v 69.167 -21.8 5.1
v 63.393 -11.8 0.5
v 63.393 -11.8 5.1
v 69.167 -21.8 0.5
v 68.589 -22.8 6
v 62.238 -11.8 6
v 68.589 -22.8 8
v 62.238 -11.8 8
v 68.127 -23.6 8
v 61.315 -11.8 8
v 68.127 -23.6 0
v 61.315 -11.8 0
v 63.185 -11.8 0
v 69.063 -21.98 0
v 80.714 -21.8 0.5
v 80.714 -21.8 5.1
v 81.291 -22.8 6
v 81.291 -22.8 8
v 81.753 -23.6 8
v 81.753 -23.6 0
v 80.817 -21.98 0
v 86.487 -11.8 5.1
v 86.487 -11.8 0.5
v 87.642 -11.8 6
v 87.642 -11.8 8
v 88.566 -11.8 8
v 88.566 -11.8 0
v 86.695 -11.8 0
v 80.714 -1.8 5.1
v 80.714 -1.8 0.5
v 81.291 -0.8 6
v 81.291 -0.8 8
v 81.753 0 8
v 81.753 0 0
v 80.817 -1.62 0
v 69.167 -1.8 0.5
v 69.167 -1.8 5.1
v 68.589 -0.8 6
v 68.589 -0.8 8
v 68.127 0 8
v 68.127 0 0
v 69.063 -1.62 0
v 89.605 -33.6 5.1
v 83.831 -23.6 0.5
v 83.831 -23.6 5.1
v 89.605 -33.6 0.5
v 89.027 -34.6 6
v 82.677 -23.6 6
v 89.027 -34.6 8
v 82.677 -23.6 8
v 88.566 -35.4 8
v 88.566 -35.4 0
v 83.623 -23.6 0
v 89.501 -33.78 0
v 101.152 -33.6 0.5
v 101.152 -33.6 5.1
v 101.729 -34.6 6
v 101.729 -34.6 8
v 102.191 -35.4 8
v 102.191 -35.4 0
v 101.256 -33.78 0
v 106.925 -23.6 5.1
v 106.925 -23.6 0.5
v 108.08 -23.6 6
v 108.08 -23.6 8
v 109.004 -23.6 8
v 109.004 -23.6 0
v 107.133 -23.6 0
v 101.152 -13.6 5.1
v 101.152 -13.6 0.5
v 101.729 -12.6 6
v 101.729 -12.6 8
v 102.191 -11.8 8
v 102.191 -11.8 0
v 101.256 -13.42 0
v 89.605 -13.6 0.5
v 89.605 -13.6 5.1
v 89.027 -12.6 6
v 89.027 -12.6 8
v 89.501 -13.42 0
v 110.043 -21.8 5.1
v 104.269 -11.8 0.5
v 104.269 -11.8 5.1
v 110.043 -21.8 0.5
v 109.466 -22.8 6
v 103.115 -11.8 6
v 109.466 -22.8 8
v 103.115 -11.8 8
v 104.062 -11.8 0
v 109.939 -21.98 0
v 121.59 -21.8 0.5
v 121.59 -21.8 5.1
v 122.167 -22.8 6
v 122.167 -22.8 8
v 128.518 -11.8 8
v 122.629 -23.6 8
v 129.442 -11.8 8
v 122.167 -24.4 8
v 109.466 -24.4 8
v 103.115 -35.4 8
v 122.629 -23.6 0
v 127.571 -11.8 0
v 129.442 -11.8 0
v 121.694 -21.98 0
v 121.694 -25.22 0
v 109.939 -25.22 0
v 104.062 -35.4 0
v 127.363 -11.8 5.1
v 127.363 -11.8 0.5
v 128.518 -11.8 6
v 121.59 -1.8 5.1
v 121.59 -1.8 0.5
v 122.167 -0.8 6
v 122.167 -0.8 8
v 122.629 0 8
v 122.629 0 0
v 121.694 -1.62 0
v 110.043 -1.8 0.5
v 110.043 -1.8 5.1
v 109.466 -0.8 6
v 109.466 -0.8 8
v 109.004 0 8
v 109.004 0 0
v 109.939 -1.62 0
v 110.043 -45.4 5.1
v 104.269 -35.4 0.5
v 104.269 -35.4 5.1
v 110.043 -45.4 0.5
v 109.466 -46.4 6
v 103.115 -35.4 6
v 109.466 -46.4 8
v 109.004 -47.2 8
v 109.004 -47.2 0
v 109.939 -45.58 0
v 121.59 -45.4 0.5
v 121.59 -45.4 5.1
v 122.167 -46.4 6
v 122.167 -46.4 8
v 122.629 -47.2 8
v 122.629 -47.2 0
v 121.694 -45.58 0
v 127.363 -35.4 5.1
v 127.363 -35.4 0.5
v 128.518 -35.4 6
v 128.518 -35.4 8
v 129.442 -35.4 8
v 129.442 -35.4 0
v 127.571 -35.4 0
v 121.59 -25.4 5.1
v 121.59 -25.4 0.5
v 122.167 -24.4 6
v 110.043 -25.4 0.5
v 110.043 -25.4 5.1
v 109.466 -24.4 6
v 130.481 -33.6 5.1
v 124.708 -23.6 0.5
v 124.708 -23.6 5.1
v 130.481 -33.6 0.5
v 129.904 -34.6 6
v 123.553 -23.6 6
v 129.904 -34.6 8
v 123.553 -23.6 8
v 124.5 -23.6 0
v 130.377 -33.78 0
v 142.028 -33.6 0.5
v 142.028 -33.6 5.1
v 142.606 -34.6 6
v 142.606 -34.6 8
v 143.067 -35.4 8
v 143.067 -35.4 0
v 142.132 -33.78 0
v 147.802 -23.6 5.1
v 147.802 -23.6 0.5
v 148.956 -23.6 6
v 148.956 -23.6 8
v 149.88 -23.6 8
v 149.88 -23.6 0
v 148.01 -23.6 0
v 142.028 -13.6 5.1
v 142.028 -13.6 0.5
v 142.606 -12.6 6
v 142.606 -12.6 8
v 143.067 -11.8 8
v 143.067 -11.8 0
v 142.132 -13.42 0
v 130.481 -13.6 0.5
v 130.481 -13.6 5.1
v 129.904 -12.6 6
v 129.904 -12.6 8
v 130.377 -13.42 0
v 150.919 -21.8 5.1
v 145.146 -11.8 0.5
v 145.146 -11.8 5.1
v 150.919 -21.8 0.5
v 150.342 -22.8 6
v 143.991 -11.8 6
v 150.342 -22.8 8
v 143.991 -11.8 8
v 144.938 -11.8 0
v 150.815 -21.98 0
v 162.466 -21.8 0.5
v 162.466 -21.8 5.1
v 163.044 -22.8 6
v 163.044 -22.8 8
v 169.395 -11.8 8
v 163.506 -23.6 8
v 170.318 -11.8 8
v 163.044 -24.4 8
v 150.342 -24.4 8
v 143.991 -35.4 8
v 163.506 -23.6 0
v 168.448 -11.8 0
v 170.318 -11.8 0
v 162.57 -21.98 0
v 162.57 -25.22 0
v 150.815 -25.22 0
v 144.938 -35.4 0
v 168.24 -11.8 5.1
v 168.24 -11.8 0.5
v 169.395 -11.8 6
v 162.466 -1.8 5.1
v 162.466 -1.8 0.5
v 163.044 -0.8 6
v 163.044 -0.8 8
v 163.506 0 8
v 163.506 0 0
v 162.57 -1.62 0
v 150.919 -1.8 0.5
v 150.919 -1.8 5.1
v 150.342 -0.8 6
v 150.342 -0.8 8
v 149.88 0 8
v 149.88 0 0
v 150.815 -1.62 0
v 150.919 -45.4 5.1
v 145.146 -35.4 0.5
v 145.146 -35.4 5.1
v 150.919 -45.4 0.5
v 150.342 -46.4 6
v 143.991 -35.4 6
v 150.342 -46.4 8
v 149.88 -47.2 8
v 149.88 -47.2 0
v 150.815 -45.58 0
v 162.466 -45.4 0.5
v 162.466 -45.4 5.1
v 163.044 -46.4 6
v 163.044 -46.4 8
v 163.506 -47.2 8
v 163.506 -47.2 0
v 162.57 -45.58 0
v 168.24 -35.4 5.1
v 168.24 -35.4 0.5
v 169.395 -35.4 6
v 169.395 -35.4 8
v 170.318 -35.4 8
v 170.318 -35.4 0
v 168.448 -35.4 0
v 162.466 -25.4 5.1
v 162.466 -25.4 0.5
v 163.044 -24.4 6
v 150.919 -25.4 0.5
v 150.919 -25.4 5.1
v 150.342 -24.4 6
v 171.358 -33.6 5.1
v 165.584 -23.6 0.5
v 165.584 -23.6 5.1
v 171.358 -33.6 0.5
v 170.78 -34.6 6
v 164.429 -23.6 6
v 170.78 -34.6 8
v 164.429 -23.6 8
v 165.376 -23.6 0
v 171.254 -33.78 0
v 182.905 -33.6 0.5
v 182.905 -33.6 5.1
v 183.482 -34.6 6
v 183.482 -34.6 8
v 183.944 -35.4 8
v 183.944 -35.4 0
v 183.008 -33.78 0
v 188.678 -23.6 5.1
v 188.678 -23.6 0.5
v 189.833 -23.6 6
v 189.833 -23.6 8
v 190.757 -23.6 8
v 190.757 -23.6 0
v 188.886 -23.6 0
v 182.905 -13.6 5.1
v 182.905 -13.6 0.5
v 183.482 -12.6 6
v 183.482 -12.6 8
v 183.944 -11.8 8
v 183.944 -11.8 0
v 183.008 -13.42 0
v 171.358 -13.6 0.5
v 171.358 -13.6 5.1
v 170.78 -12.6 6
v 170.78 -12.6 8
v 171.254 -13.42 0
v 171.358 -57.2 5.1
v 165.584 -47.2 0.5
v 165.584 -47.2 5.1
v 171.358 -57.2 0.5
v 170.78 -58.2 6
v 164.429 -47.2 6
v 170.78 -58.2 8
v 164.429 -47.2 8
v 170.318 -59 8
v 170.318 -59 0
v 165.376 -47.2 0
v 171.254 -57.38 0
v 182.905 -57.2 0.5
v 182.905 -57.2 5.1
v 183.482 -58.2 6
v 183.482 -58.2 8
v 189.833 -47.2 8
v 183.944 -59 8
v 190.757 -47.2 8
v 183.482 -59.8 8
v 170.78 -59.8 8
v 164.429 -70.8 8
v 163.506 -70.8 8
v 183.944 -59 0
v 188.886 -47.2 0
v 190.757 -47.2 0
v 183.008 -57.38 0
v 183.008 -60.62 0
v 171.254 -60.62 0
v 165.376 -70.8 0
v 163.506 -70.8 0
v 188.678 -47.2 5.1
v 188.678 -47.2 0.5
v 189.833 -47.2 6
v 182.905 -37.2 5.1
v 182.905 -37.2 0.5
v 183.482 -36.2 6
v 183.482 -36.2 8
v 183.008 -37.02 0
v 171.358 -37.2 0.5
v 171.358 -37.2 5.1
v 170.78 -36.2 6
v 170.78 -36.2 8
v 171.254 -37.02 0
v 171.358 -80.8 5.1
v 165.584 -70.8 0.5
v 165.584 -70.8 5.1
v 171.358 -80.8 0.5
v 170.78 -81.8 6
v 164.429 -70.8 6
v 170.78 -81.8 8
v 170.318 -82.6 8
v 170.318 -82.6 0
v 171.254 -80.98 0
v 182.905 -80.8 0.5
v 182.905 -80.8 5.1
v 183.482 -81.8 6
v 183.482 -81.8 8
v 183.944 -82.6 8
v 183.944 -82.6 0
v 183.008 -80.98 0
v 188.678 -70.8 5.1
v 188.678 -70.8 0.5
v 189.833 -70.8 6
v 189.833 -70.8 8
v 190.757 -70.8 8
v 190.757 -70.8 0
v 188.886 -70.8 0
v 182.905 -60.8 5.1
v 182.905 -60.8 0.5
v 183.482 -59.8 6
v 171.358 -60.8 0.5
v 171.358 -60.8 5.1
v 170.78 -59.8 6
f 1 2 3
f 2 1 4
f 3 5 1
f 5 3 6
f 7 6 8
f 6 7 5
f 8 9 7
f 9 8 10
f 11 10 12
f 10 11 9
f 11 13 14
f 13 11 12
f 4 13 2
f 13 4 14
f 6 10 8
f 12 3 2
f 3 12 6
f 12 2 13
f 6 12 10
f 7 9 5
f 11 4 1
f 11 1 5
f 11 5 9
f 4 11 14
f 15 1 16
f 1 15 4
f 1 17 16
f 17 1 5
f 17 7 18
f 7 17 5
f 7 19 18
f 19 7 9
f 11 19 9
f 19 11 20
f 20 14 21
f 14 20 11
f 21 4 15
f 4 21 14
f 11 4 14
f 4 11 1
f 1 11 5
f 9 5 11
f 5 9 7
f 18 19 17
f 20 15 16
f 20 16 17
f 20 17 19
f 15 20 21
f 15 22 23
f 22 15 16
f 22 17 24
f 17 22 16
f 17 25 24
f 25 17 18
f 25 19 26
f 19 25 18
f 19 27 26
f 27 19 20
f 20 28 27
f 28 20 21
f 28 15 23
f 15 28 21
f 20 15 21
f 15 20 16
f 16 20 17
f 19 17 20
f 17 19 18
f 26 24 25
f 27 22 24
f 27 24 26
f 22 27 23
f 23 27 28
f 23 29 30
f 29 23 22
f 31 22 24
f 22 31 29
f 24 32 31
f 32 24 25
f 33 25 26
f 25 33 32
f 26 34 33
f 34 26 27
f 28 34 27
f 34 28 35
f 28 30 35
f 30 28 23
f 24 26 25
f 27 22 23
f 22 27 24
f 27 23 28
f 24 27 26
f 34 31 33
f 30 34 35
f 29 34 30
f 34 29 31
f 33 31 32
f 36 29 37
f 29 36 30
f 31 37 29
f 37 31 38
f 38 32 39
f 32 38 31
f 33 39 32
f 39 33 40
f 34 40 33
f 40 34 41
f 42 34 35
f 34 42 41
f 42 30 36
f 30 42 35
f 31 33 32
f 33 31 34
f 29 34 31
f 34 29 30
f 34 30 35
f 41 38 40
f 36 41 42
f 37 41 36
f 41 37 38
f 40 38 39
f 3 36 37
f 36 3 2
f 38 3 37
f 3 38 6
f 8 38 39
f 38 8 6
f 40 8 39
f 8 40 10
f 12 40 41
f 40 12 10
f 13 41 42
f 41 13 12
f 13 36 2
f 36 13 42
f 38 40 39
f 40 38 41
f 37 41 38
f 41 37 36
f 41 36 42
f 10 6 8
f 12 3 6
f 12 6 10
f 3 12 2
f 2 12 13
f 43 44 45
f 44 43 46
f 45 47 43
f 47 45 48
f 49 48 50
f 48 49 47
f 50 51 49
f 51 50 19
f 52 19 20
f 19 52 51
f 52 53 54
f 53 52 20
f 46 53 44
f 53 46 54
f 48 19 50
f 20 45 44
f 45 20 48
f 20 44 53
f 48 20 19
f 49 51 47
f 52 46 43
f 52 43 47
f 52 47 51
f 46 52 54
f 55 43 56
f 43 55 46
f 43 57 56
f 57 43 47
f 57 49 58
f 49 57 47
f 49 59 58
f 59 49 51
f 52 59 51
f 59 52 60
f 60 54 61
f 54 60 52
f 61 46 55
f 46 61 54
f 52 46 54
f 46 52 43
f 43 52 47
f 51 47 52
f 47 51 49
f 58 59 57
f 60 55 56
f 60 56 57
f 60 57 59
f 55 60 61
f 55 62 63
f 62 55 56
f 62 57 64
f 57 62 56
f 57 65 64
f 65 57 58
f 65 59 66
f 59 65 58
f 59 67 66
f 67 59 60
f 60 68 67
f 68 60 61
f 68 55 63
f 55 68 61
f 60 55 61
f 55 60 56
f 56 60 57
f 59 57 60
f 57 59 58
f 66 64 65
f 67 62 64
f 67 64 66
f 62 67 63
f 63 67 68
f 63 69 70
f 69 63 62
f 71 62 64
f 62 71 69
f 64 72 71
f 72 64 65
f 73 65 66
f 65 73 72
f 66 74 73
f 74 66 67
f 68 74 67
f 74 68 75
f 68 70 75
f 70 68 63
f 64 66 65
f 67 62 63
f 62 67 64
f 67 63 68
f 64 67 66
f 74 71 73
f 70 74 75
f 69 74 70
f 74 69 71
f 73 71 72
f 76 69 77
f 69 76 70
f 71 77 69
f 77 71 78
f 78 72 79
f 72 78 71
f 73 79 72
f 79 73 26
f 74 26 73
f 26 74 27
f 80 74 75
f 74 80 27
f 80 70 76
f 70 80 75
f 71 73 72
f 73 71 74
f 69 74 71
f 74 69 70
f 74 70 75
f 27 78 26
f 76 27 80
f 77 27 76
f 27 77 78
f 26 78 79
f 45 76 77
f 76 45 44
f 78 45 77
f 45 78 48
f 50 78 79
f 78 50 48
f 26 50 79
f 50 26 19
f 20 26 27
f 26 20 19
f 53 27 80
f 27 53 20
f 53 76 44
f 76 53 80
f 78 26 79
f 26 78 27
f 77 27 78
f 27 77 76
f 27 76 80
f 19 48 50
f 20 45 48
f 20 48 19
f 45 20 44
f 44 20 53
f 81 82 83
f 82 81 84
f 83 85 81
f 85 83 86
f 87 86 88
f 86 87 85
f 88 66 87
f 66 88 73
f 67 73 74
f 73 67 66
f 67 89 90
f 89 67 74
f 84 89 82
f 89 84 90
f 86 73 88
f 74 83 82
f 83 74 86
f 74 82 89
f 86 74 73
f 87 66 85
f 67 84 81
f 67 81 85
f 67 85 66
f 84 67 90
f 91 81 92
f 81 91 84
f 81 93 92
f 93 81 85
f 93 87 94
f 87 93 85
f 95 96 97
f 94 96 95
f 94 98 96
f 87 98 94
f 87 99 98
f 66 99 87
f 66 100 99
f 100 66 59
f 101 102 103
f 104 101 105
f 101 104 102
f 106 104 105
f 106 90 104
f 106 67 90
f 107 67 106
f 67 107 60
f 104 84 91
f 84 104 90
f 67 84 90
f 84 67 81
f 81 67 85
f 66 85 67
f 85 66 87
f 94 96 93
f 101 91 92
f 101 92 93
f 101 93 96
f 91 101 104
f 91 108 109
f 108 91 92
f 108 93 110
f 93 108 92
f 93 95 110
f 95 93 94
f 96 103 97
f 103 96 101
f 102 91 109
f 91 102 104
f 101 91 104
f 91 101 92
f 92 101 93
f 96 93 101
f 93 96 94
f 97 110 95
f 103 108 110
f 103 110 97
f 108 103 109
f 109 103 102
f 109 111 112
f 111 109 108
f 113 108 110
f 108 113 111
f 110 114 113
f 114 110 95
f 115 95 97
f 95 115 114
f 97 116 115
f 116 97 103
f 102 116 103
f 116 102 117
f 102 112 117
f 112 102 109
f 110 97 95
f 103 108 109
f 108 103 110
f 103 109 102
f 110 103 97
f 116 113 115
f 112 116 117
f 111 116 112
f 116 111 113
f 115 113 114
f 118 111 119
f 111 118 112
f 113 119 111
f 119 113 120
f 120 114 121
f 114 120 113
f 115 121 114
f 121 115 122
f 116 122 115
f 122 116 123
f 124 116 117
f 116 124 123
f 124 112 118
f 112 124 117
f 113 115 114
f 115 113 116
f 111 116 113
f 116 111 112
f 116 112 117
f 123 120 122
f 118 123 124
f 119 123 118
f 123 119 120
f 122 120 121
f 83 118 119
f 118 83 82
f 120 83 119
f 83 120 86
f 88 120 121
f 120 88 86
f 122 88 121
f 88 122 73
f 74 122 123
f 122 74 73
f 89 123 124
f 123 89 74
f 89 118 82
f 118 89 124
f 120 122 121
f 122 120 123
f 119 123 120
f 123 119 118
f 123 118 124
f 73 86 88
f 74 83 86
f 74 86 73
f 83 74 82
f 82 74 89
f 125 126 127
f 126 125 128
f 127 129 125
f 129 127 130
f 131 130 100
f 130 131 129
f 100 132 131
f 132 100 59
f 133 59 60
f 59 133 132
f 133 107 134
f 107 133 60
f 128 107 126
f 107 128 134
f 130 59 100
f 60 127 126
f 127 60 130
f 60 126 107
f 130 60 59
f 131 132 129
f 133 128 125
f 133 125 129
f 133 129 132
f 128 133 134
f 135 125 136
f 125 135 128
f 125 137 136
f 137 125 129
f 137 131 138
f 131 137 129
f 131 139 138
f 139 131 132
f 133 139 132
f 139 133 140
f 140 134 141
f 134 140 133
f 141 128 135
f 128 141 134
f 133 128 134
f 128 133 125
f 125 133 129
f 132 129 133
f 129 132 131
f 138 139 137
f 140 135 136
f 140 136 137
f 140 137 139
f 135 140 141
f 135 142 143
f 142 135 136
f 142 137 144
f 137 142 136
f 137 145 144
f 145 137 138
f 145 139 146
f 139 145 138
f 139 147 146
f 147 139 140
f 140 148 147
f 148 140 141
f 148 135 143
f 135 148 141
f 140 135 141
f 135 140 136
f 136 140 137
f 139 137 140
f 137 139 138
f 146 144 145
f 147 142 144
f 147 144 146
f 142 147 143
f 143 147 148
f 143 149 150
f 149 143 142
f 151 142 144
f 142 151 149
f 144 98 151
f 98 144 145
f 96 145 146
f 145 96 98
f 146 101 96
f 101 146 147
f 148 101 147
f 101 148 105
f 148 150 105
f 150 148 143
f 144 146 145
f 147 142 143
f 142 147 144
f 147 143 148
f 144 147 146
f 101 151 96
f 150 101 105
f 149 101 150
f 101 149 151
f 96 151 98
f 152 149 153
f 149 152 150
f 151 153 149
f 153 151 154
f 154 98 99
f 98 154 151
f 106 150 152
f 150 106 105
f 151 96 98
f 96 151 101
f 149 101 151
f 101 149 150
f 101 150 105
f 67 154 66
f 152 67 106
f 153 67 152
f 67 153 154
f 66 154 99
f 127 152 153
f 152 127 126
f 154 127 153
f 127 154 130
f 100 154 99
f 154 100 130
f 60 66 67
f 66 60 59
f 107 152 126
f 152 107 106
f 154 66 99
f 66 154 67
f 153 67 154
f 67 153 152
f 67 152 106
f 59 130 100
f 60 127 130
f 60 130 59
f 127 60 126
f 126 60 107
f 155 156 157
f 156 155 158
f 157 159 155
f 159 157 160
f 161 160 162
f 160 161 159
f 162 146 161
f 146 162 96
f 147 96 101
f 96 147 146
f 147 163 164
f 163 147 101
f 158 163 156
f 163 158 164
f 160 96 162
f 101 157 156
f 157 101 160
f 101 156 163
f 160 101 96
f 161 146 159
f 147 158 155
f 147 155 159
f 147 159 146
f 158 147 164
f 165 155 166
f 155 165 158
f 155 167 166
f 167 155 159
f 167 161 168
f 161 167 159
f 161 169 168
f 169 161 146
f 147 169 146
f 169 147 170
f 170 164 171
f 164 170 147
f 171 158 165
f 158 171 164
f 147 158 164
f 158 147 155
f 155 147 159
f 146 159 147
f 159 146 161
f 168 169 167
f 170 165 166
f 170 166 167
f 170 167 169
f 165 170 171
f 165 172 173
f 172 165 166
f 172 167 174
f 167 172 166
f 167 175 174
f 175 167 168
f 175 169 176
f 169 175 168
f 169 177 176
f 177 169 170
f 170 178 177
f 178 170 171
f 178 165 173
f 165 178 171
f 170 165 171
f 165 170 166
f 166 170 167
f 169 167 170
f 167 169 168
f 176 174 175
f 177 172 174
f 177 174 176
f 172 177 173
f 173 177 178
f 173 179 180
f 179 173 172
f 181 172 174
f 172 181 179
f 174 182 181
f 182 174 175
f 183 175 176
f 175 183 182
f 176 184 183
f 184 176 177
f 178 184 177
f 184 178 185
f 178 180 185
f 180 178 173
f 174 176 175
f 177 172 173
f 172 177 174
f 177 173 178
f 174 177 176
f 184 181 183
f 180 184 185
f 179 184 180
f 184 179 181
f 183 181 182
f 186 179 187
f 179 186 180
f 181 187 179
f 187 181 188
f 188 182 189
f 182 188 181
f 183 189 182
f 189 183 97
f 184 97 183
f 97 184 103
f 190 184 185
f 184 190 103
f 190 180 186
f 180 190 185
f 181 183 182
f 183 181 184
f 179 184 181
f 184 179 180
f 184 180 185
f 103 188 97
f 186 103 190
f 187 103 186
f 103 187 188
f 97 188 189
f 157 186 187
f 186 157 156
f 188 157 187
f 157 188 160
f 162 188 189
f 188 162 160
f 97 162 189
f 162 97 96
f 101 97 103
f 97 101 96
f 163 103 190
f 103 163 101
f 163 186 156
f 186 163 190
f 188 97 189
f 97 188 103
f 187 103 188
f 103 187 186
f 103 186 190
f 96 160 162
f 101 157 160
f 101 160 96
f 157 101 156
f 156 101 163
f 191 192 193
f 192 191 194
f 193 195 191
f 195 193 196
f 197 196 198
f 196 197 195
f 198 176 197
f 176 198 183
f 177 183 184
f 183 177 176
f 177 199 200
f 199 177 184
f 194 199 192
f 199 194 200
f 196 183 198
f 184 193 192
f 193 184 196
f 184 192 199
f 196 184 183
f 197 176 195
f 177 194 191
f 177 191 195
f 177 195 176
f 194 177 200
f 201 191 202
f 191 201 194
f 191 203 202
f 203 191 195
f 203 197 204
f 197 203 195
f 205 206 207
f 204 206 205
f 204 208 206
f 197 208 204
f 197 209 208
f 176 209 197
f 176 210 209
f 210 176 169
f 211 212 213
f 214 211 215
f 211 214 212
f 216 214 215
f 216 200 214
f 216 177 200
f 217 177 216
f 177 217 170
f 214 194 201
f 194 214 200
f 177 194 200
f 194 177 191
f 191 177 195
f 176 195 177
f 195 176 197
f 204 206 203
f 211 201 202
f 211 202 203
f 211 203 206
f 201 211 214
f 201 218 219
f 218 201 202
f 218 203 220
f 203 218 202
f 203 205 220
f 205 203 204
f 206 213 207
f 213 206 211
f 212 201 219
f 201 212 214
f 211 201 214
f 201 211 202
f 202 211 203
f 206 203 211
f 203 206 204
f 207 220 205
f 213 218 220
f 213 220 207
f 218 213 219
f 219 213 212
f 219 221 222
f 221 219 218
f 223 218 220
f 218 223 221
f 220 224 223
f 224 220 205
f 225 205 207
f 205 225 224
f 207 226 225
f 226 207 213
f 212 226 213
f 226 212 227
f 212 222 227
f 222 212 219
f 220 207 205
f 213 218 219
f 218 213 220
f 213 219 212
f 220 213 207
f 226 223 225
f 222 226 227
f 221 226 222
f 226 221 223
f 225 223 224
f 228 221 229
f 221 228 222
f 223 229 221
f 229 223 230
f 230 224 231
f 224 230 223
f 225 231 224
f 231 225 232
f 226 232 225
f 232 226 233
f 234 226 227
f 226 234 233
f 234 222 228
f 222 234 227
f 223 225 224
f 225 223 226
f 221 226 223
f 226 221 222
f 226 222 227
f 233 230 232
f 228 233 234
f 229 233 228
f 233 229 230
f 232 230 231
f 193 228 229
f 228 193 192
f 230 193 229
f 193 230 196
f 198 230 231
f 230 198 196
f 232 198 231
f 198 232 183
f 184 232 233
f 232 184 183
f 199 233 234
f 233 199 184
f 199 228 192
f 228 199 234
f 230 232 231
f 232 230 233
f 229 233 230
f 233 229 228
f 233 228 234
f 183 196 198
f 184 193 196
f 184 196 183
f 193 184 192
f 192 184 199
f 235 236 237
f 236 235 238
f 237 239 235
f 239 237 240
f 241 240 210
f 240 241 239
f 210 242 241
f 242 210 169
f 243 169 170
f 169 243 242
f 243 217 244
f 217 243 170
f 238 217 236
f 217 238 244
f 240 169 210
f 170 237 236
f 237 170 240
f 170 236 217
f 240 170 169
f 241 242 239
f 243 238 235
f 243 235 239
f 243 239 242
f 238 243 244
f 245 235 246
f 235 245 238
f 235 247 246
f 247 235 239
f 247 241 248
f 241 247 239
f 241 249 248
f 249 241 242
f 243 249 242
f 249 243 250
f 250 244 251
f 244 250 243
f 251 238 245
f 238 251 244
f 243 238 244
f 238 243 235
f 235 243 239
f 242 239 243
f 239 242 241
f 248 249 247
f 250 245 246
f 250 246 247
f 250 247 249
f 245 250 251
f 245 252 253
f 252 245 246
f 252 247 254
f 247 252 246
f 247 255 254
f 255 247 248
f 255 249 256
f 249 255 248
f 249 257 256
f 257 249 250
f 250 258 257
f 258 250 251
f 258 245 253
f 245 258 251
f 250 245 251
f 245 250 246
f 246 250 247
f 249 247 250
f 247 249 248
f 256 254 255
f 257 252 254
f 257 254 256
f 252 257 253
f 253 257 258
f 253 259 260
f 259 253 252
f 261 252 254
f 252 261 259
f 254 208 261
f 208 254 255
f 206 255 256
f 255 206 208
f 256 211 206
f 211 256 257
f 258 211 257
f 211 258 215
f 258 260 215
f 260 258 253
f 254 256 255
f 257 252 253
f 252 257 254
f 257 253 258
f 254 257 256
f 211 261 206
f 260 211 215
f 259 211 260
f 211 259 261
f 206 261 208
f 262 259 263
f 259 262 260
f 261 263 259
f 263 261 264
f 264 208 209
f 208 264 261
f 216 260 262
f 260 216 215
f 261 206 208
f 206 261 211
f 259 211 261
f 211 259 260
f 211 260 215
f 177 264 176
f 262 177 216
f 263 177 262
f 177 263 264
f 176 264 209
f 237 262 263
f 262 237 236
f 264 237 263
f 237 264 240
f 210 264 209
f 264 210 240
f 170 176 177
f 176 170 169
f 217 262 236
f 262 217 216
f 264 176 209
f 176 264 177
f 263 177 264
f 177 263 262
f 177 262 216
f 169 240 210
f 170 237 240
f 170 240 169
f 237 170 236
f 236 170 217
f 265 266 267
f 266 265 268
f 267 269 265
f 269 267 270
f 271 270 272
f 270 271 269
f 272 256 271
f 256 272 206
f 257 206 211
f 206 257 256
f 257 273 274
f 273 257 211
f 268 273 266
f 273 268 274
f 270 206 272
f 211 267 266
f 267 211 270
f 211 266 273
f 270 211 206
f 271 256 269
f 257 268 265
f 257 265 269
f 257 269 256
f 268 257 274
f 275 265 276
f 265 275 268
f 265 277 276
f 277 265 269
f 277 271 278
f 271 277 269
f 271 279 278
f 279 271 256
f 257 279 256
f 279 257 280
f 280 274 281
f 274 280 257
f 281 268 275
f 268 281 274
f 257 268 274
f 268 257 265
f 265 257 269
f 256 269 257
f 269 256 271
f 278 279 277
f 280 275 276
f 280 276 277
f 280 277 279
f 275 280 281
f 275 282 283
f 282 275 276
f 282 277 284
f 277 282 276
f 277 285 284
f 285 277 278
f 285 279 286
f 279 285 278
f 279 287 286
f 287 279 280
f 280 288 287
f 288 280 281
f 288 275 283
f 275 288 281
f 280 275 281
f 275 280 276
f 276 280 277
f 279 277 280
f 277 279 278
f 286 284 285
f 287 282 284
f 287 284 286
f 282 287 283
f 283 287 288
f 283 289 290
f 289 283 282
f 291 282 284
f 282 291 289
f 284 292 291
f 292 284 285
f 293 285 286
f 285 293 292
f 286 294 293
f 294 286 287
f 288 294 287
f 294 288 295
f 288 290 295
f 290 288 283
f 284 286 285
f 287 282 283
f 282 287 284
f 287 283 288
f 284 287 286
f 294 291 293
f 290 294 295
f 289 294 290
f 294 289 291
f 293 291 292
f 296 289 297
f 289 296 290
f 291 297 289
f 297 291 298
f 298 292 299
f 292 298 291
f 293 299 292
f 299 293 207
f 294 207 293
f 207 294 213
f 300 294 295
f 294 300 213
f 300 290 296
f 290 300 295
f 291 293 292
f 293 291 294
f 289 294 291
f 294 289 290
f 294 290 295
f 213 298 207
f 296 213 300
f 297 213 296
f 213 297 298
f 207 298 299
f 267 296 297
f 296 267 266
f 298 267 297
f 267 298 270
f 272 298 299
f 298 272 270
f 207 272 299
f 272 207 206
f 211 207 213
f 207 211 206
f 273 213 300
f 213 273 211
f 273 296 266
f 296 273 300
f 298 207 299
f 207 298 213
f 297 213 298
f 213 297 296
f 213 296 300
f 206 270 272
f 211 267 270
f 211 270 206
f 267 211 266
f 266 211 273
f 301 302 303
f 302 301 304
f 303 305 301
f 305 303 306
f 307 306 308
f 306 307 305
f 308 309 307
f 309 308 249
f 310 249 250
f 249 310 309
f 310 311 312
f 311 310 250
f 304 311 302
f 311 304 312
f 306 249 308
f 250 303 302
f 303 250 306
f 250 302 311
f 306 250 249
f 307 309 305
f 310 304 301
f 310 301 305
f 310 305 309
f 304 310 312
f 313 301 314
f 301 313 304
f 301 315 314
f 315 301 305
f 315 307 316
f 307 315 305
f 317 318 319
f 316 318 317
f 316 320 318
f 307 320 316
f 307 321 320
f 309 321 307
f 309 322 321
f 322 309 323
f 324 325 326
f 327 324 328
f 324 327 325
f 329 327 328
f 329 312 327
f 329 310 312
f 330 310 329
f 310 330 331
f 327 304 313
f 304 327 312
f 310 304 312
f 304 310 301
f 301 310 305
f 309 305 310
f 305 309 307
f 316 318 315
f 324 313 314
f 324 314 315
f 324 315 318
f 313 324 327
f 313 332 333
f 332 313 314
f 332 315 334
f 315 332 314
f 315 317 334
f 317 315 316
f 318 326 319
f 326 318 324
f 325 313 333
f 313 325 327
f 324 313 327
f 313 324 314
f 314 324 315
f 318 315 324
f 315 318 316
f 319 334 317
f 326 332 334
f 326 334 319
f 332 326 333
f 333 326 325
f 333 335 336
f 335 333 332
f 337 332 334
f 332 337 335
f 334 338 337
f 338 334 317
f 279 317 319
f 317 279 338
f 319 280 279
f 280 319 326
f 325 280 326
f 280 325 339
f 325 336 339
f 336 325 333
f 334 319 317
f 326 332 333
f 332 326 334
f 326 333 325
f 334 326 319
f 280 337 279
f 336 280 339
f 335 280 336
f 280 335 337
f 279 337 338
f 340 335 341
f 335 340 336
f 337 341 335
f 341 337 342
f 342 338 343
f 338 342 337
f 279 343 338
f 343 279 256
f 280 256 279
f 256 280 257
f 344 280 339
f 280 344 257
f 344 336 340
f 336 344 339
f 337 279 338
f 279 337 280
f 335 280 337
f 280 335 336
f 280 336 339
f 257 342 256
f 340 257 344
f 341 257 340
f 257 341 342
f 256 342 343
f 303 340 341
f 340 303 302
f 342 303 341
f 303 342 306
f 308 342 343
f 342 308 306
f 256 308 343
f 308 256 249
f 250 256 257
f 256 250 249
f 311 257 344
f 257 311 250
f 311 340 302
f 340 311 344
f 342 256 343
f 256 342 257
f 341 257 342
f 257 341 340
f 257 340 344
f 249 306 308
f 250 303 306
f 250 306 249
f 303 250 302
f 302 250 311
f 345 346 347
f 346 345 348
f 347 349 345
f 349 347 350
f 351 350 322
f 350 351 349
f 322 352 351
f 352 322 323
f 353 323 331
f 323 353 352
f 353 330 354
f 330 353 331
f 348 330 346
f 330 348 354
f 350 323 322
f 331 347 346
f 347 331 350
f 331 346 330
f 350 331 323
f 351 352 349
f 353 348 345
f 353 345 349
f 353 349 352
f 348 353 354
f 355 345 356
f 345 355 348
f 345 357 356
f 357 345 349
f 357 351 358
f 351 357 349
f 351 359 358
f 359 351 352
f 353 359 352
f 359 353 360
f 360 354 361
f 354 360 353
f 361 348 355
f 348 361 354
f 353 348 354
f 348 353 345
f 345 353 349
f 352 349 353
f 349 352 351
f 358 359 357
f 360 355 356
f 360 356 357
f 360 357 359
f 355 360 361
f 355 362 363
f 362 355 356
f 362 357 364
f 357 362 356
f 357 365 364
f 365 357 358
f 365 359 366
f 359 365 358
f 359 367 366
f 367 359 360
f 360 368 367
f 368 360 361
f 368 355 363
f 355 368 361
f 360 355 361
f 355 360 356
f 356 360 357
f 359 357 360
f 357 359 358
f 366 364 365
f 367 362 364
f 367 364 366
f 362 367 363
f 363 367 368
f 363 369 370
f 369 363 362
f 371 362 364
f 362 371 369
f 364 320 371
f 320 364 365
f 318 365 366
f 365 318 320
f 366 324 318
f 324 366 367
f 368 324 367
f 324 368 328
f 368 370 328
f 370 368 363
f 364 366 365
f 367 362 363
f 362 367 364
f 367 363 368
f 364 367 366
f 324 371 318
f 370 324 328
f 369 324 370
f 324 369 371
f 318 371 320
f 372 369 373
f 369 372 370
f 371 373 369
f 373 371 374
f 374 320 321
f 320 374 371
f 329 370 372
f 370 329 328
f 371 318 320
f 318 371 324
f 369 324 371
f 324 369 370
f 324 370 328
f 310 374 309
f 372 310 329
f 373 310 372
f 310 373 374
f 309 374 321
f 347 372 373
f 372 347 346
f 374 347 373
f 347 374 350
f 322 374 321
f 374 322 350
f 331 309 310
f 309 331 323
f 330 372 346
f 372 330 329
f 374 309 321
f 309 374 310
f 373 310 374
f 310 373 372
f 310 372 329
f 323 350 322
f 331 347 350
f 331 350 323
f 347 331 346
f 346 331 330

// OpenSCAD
/*[ Hex unit size ]*/

//Depth of the grid
depth = 8;
//Width of the hexagon's hole (flat side to flat side)
hole_width = 20;
//Thickness of the wall forming each hexagon
wall_thickness = 1.8;

/*[ Grid size settings ]*/
max_grid_width=100;
max_grid_height=100;

/*[ Grid shape ]*/
//If checked, ignores custom column sizes and fills grid to maximum size.
fill=false;
flip_staggering=true;
//Amount of hexagons per column. Each entry defines a one column, where the number specifies the amount of hex units that will be generated for the respective column. (Ignored if "fill" is checked)
columns=[ 9, 10, 9, 10, 9, 10, 9, 10, 9,];
//columns=[ 9, 10, 9, 10, 9, 10, 9, 10, 9, 10];
//columns=[10, 9, 10, 9, 10, 9, 10, 9, 10];
include_offsets=false;
//Optional: Offset for each column. This will ignore grid size limits.
column_offsets=[0,-2,-3,-1,0,2,4];
include_gaps=true;
//Optional: Gaps for each column. *NOTE: Change these values in the code. Seems like 2D vector parameters aren't supported by the parameter editor and are always overwritten by the defaults.
column_gaps=[
             [1,2,3,4,5,6,7,8,9],// [2,3,4,5,6], // column 1
             [1,2,3,4,5,6,7,8,9,10],// [3,4,5,6,],  //column 2
             [1,2,3,4,5,6,7,8,9],// [4,5,6,], // column 3
             [2,3,4,5,6,7,8,9,10],// [1,5,6,],   // column 4
             [2,3,4,5,6,7,8,9],// [1,4,5,], // column 5
             [3,4,5,6,7,8,9,10],// [1,2,5,6,], // column 6
             [2,3,4,5,6,7,8,9],// [1,5,], // column 7
             [3,4,5,6,7,8,9,10],// [1,2,], // column 8
             [4,5,6,7,8,9],// [1,2,3,], // column 9
             ];

/*[ Flat edges ]*/
edge_left = false;
edge_top = false;
edge_right = false;
edge_bottom = true;


//Calculated global variables
//Hexagon dimensions
hex_inner_r = hole_width/sqrt(3); //Inner radius/side length (center to point)
hex_h=hole_width+wall_thickness*2; //Outer side to side distance
hex_s=hex_h/sqrt(3); //Outer radius/side length 
hex_d=2*hex_s; //Outer diameter (point to point)
hex_t=hex_s/2;
//Grid dimensions
max_grid_hexagons_x = fill? floor(max_grid_width/(hex_d-hex_t) +(edge_left?0.5:0) +(edge_right?0.5:0)): len(columns);
max_grid_hexagons_y = fill? floor(max_grid_height/hex_h +(edge_top?0.5:0) +(edge_bottom?0.5:0)): max(columns);
max_grid_hexagons_y_lo = fill? floor(max_grid_height/hex_h - 0.5 +(edge_top?0.5:0) +(edge_bottom?0.5:0)): (max(columns) - 0.5);
total_width = max_grid_hexagons_x * (hex_d-hex_t) + hex_t;
total_height = hex_h*max(max_grid_hexagons_y - 0.5, max_grid_hexagons_y_lo);


translate([edge_left?0:hex_s, edge_top?0:-hex_h/2, 0])
grid(columns, include_offsets?column_offsets:[], include_gaps?column_gaps:[], depth, hole_width, wall_thickness, fill);


module grid(cols, offsets, gaps, height, hole_width, wall_width, fill){    
    for(hcol = [0:fill?max_grid_hexagons_x-1:(len(cols)-1)]){
        for(hrow = [0:(fill?(max_grid_hexagons_y-1):(cols[hcol]-1))]) {
            skip = hcol<len(gaps) && len(search(hrow+1, gaps[hcol])) > 0;          
            if(!skip){
                offset_value=hcol>len(offsets)-1?0:offsets[hcol];
                
                lo = (hcol+(flip_staggering?1:0))%2;
                x = (hex_d-hex_t)*hcol;
                y = -(hex_h)*(hrow + offset_value + lo/2);                
                
                if(hcol<max_grid_hexagons_x && hrow<(lo==0?max_grid_hexagons_y:max_grid_hexagons_y_lo)){
                    left = edge_left && hcol==0;
                    top = edge_top && hrow==0 && hcol%2==(flip_staggering?1:0);
                    right = edge_right && hcol==max_grid_hexagons_x-1;
                    bottom = edge_bottom && hrow+1==(lo==0?max_grid_hexagons_y:max_grid_hexagons_y_lo) && -y+hex_h>total_height+0.001 && -y+hex_h/2<=total_height;
                    translate([x, y, 0]) halfhex(height, hex_s, wall_width, hole_width, left, top, right, bottom);
                }
            }        
        }
    }
}

module halfhex(height, radius, wall_thickness, hole_width, left, top, right, bottom){
    difference(){
        union(){
            hex(height, radius, wall_thickness, hole_width);
            if(left) translate([0, hex_h/2, 0]) wall(depth, wall_thickness, hex_h);
            if(top) translate([hex_d/2, 0, 0]) rotate([0,0,-90]) wall(depth, wall_thickness, hex_d);
            if(right) translate([0, -hex_h/2, 0]) rotate([0,0,180]) wall(depth, wall_thickness, hex_h);
            if(bottom) translate([-hex_d/2, 0, 0]) rotate([0,0,90]) wall(depth, wall_thickness, hex_d);
        }
        if(left) translate([-hex_d/2, -hex_h, 0]) cube([hex_d/2, 2*hex_h, depth]);
        if(top) translate([-hex_d/2, 0, 0]) cube([hex_d, hex_h, depth]);
        if(right) translate([0, -hex_h, 0]) cube([hex_d/2, 2*hex_h, depth]);
        if(bottom) translate([-hex_d/2, -hex_h, 0]) cube([hex_d, hex_h, depth]);
    }
}

module hex(height, radius, wall_thickness, hole_width){
    for(i=[0:5]){
        rotate([0,0,i*60+30])
        translate([-hole_width/2-wall_thickness, radius/2, 0])
        wall(height, wall_thickness, radius);
    }
}

module wall(height, wall_thickness, length){
    hmax=height;
    hmin=5.1;
    hd=2;
    tmax=wall_thickness;
    tmin=wall_thickness-1;   
    ft = 0.18;//fillet thickness
    fh = 0.5;//fillet height
    color("cyan")
    difference(){
        color([0,0,1])
        rotate([90,0,0])
            linear_extrude(length)   
            polygon([[0,0], [0,hmax], [tmin,hmax], [tmin,hmax-hd], [tmax,hmin], [tmax,fh], [tmax-ft,0]]);
        //Fillet
        rotate([0,0,-30])
            cube([4*tmax, 2*tmax, hmax]);
        mirror([0,1,0])
            translate([0,length,0])
            rotate([0,0,-30])
            cube([4*tmax, 2*tmax, hmax]);
    }
}
